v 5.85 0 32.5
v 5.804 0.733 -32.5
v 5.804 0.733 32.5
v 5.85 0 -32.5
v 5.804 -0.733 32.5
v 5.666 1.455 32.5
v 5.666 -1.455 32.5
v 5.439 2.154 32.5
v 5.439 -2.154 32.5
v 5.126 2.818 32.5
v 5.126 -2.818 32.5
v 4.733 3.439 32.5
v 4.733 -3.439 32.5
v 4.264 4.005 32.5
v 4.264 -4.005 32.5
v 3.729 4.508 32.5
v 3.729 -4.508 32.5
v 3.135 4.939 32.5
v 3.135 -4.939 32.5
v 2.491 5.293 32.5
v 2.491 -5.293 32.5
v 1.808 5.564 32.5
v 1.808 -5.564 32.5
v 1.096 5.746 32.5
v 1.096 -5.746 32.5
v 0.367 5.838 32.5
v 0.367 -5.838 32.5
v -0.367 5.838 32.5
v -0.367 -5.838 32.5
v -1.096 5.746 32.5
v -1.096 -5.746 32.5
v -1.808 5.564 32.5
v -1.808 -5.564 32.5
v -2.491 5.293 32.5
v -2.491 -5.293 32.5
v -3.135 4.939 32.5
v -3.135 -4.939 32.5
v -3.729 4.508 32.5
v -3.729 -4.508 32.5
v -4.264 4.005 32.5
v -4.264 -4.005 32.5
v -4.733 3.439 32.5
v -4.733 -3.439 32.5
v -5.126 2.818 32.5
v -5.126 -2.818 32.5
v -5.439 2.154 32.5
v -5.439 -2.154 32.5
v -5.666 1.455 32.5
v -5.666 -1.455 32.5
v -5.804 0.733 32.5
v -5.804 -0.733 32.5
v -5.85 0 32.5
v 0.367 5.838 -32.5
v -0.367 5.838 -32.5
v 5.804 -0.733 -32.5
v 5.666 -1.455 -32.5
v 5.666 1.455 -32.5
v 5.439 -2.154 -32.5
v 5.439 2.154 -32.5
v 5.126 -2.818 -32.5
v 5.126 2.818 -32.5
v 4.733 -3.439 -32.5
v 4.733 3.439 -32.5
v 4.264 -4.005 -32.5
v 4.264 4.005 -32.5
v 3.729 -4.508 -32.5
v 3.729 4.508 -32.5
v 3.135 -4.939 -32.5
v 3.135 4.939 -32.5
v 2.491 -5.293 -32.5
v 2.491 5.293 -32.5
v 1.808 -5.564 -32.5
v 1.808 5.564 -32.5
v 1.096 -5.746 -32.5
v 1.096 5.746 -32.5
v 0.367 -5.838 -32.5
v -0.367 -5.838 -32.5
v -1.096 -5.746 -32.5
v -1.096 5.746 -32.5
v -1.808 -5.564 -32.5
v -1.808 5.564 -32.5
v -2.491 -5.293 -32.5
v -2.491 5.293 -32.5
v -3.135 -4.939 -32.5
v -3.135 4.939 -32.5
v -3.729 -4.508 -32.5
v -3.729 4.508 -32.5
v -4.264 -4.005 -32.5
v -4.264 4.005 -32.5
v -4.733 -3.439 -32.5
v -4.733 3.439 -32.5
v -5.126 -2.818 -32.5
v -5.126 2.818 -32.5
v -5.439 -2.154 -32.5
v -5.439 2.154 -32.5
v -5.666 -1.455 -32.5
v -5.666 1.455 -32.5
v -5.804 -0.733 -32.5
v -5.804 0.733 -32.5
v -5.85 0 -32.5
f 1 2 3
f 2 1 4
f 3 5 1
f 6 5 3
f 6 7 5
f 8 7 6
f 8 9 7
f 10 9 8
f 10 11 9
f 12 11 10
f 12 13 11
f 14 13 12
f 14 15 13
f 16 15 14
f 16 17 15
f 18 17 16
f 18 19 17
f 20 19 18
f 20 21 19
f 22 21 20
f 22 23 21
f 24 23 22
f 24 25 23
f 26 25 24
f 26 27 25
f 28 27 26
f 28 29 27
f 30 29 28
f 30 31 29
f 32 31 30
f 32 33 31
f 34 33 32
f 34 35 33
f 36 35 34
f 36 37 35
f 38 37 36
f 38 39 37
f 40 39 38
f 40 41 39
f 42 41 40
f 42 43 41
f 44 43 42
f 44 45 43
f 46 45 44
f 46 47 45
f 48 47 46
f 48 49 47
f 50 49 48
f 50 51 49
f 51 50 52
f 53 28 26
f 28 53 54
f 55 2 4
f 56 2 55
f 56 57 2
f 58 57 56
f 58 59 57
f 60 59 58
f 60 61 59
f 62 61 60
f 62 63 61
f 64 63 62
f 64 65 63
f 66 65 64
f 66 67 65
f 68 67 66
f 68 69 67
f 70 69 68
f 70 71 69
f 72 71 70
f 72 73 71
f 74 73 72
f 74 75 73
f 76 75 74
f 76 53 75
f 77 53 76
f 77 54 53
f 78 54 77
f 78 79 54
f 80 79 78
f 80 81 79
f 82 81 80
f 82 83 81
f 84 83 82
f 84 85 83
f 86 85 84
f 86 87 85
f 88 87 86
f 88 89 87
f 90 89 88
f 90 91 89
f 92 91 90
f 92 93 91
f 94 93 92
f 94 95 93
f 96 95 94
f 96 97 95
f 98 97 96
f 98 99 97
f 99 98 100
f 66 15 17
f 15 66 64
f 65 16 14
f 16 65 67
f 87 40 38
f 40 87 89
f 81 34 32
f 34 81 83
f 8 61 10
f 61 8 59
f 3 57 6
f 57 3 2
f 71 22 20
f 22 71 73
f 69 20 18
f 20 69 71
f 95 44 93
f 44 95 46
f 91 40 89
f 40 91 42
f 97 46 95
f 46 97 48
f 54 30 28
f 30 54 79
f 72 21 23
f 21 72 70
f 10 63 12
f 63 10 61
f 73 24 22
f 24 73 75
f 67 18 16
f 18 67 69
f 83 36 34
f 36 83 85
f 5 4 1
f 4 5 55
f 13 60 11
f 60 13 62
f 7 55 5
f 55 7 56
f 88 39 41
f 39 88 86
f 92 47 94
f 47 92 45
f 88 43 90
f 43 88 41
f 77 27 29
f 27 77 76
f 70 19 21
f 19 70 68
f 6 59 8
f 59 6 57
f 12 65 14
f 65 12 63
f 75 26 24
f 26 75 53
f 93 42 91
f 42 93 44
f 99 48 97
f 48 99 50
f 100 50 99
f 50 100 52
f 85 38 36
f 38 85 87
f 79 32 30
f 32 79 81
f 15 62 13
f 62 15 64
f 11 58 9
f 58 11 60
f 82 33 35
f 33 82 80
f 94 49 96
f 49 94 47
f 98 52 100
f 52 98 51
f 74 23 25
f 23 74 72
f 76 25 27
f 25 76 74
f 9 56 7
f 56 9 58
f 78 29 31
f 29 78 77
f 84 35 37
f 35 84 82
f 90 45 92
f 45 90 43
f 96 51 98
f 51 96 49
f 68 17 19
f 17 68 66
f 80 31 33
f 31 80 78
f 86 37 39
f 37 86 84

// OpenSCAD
$fn = 50;


difference() {
	union() {
		translate(v = [0, 0, -32.5000000000]) {
			cylinder(h = 65, r = 5.8500000000);
		}
	}
	union() {
		translate(v = [0, 0, -100.0000000000]) {
			cylinder(h = 200, r = 0);
		}
	}
}
